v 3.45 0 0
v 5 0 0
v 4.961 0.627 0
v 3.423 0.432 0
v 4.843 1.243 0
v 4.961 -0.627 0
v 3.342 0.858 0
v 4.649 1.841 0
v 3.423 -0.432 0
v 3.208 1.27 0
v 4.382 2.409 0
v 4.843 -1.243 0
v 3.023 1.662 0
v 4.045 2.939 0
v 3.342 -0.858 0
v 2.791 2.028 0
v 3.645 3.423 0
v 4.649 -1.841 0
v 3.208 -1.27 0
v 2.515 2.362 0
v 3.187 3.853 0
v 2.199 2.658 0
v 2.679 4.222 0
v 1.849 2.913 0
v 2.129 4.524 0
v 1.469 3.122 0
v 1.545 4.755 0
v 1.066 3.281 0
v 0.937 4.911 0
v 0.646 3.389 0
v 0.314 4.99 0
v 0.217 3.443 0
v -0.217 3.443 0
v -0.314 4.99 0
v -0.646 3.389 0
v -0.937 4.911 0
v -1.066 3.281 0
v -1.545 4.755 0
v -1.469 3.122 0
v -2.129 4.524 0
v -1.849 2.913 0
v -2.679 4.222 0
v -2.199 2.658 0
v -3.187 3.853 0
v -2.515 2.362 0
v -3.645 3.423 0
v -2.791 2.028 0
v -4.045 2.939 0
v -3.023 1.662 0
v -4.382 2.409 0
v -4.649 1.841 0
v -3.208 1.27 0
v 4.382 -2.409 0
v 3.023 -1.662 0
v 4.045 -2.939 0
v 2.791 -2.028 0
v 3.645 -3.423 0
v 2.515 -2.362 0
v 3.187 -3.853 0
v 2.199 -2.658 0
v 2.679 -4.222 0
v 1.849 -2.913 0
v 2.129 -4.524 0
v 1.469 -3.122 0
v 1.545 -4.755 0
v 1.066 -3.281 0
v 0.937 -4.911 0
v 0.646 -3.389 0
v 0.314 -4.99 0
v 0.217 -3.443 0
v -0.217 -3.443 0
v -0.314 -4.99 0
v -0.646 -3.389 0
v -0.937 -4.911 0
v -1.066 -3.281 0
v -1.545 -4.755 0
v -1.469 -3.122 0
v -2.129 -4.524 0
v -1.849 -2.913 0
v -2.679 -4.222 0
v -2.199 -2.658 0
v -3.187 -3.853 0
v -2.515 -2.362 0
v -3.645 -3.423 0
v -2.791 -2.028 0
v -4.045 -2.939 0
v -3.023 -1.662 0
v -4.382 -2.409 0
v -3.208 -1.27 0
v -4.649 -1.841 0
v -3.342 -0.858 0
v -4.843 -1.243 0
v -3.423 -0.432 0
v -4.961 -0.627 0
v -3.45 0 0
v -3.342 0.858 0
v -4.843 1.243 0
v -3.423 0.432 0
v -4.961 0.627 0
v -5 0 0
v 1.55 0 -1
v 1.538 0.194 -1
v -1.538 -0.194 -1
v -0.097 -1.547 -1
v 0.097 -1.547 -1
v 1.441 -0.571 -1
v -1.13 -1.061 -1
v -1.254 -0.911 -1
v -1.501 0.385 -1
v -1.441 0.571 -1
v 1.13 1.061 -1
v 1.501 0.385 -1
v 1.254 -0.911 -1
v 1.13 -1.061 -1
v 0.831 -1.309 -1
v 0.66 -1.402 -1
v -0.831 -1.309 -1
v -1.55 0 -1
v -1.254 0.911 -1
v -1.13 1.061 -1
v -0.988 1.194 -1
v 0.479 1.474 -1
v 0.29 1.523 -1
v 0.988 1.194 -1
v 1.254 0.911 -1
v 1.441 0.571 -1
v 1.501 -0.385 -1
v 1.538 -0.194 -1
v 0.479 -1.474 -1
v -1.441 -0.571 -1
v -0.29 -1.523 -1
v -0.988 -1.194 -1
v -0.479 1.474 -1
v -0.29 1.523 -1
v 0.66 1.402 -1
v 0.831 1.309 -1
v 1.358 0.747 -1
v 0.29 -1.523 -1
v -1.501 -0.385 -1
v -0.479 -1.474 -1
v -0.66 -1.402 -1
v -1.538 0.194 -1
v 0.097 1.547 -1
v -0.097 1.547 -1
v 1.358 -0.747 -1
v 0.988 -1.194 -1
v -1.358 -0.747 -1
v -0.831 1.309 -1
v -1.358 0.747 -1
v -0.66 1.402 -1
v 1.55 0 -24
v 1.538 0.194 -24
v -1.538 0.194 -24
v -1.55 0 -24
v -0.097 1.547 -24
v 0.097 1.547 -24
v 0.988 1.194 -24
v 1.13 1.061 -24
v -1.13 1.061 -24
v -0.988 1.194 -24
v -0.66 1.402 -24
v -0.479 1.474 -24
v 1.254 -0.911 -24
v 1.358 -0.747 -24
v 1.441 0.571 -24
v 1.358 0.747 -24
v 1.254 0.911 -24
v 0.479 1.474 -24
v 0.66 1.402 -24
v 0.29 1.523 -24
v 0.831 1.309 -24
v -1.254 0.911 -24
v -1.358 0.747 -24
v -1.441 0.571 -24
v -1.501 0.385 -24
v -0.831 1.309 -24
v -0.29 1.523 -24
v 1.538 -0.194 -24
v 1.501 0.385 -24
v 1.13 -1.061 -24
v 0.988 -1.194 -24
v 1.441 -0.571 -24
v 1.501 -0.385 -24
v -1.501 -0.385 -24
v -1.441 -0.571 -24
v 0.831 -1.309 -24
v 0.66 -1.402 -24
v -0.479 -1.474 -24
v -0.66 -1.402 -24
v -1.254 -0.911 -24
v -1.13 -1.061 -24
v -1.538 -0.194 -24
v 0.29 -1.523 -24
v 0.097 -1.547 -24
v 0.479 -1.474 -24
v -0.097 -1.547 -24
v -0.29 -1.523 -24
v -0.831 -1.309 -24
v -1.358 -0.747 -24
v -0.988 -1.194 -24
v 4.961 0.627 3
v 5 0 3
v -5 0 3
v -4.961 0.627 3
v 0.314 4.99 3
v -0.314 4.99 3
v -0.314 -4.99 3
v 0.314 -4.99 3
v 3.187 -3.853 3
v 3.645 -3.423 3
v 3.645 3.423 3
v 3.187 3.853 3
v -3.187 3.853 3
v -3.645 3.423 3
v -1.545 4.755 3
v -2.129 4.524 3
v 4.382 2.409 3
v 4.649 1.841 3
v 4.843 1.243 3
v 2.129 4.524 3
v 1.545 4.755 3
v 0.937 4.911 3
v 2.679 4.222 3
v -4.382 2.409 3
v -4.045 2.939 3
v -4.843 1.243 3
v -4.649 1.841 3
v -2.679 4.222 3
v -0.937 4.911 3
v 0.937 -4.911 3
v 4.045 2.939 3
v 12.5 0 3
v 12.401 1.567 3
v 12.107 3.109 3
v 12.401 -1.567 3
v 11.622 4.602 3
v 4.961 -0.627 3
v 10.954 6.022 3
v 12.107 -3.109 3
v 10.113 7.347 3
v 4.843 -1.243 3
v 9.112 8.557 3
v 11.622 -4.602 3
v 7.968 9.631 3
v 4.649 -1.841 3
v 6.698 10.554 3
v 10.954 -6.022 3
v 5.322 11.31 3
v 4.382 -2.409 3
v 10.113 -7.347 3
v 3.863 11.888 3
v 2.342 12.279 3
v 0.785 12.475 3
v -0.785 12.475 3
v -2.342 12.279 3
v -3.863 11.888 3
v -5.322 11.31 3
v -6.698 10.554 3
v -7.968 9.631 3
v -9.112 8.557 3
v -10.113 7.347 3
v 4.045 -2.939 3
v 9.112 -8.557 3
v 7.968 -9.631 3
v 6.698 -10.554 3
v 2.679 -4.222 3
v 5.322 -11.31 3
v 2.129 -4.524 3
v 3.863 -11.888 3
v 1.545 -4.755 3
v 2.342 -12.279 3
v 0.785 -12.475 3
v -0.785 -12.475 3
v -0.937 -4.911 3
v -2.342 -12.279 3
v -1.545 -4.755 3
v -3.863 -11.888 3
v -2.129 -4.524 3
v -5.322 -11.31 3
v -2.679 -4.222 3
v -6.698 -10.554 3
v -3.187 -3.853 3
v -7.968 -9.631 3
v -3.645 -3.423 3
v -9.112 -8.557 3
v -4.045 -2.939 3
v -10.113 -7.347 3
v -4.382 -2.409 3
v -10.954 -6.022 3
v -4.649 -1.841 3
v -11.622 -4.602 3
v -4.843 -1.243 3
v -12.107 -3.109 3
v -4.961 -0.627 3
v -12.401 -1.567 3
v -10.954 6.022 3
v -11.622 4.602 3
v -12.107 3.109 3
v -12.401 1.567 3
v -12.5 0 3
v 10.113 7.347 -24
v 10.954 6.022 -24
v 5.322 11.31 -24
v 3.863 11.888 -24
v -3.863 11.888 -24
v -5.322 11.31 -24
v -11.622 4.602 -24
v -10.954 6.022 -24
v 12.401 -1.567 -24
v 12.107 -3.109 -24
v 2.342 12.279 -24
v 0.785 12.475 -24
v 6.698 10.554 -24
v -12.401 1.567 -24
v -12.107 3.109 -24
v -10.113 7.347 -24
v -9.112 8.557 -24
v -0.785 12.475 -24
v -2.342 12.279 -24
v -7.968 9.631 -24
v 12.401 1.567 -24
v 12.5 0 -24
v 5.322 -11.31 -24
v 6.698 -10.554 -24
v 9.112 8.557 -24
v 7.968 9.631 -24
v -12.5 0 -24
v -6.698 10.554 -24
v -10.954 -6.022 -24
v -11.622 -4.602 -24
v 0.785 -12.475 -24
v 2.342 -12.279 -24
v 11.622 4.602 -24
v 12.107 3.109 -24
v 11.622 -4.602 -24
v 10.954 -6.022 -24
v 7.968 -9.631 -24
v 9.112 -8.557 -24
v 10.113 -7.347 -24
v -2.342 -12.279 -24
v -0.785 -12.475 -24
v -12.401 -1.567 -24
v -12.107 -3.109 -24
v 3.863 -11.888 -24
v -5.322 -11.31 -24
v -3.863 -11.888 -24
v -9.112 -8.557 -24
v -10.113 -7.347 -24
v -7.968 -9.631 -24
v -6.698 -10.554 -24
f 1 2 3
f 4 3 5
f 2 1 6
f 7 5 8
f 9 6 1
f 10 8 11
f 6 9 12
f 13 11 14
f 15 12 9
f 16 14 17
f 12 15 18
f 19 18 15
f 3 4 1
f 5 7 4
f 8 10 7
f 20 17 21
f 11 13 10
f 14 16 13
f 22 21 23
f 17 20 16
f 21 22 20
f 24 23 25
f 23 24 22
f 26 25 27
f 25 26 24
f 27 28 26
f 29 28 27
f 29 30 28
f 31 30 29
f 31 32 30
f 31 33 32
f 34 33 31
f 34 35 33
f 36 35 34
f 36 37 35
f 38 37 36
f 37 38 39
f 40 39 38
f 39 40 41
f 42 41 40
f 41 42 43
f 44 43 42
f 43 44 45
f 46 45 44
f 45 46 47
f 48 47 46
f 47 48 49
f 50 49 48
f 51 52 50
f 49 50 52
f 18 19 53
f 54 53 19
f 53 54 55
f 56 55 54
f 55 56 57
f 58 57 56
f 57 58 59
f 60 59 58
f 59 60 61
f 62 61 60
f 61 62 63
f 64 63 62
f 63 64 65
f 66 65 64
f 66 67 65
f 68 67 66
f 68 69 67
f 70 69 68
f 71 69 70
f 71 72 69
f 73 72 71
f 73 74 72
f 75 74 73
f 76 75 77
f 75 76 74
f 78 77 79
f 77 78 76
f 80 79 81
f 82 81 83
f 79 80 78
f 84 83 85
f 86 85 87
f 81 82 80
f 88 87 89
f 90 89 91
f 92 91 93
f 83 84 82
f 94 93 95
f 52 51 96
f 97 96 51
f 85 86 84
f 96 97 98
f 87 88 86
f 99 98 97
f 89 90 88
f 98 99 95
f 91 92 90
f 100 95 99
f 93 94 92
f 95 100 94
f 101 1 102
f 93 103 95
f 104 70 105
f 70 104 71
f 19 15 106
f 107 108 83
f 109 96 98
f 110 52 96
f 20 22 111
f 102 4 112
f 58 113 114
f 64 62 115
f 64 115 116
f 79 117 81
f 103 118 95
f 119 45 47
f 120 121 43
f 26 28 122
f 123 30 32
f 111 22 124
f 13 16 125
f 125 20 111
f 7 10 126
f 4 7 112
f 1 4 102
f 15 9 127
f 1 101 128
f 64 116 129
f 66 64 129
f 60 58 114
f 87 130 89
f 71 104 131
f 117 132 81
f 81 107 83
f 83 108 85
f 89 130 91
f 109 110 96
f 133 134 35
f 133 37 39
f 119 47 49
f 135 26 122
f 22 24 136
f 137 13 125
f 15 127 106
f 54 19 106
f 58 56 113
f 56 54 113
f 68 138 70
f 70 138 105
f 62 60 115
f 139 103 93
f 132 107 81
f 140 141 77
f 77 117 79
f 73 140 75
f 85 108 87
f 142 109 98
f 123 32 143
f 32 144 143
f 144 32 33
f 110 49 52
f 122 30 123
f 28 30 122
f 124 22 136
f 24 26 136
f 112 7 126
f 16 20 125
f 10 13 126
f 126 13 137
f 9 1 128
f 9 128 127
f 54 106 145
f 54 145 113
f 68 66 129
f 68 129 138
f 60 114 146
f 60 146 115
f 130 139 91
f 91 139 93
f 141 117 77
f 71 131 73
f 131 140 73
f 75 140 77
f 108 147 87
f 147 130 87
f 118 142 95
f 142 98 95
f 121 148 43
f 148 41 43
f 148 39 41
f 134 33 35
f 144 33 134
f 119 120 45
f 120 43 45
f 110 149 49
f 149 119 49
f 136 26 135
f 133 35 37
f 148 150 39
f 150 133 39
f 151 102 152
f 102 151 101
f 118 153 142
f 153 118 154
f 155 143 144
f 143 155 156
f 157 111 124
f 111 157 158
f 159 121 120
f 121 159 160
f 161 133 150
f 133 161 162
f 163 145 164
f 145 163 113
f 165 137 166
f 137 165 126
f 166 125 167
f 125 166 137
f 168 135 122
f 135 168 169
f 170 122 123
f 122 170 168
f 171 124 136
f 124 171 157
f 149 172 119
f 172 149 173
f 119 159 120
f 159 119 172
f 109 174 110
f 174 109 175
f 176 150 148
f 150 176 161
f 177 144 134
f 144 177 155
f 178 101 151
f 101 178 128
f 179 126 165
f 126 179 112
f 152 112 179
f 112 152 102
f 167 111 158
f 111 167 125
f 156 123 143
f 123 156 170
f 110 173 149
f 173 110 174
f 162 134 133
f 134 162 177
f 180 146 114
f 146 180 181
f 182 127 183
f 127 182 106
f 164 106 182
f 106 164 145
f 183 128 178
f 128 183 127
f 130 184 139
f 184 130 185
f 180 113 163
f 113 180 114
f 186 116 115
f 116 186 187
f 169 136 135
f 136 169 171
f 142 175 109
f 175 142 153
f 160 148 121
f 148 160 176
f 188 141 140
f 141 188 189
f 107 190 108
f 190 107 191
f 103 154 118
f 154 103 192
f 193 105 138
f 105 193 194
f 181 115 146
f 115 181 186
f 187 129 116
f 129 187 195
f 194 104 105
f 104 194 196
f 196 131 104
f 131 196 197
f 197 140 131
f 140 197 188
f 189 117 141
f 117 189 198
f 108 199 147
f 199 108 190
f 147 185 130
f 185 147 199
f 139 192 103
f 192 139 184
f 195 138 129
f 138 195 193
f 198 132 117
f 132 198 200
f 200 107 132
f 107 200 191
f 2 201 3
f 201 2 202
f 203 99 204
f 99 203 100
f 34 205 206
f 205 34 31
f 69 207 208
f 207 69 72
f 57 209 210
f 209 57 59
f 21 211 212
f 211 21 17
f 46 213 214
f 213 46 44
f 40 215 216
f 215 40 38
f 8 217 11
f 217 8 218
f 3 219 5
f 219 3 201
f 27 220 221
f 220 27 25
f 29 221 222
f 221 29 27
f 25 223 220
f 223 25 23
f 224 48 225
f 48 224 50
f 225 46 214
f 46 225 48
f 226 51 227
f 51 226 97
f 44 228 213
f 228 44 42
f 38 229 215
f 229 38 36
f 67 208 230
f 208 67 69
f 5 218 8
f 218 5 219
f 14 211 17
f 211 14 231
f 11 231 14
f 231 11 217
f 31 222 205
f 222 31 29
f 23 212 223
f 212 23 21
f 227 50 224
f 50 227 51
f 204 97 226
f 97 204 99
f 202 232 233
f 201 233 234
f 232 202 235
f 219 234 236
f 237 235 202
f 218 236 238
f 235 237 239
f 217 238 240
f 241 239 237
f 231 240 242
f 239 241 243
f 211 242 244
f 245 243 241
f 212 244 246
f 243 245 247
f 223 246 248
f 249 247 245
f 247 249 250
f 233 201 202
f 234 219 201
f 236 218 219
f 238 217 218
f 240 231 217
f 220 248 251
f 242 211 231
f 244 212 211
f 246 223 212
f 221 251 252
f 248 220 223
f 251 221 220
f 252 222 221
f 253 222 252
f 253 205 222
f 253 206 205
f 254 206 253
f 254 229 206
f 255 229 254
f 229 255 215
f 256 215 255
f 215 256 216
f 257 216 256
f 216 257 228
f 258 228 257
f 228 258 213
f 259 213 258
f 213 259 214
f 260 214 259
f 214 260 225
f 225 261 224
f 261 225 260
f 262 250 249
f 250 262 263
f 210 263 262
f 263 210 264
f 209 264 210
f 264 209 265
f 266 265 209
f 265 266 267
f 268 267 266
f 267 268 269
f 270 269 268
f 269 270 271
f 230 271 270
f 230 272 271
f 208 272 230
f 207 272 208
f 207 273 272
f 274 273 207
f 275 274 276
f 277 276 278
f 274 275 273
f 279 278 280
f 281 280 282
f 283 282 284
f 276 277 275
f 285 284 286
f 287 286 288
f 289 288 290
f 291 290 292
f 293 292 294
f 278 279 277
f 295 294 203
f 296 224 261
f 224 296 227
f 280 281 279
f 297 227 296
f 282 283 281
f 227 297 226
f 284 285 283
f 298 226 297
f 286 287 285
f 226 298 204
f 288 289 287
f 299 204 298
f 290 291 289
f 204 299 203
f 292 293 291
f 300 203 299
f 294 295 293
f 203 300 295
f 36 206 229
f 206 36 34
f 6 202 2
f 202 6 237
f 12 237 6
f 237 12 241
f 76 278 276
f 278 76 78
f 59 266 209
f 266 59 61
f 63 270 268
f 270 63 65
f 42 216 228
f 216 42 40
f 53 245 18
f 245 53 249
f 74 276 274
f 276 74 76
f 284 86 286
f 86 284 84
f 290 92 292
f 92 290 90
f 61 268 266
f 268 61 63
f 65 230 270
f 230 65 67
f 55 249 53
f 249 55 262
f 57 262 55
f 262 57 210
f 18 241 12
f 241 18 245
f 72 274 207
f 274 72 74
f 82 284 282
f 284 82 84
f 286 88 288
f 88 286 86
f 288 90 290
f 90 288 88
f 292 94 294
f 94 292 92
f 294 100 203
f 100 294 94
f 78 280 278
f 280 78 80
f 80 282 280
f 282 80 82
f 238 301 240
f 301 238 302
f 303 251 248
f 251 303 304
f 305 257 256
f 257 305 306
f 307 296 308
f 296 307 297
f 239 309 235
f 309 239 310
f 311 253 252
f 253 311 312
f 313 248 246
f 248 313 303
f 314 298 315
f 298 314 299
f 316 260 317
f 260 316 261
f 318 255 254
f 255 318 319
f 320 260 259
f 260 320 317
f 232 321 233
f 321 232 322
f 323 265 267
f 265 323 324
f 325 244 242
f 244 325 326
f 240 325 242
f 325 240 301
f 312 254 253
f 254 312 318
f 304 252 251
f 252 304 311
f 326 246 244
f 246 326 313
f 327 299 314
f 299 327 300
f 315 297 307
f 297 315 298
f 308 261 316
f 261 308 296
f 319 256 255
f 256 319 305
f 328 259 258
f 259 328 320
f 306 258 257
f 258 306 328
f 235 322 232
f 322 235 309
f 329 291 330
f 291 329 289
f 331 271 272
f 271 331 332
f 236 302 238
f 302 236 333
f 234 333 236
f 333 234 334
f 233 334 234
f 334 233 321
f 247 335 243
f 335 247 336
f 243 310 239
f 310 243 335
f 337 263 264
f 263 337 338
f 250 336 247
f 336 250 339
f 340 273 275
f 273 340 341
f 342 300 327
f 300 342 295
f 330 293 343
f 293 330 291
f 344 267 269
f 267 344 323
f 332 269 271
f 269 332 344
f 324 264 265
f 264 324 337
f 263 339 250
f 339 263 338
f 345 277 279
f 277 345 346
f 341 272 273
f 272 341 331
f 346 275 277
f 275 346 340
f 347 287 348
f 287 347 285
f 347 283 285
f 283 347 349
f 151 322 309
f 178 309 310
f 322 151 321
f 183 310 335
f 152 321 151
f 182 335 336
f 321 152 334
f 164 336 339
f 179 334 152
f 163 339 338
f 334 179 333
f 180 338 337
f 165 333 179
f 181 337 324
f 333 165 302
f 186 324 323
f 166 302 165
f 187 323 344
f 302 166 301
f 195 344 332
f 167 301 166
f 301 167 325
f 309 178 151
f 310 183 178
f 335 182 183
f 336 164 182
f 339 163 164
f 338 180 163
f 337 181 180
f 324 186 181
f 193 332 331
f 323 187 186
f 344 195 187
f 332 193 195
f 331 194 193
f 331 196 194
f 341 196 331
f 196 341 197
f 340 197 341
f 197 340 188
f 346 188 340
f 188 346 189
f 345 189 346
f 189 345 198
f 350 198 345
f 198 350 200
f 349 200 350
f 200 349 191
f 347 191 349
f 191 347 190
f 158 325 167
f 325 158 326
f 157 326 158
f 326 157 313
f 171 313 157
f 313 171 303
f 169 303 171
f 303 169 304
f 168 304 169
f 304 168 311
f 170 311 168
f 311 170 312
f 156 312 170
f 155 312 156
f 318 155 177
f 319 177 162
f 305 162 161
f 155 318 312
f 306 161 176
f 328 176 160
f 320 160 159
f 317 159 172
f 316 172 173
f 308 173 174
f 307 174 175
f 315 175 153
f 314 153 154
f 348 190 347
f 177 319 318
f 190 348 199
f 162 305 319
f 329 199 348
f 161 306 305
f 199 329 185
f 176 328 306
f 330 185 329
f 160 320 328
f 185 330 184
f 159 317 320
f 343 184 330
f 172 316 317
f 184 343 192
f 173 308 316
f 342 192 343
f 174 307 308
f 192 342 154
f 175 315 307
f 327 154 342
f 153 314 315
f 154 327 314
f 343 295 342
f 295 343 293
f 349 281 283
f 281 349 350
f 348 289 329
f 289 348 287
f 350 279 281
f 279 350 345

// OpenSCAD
$fn = 50;

difference() {
	union() {
		translate(v = [0, 0, -24.0]) {
			cylinder(h = 27, r = 12.5);
		}
	}
	union() {
		translate(v = [0, 0, 0]) {
			rotate(a = [0, 0, 0]) {
				difference() {
					union() {
						translate(v = [0, 0, -27.0]) {
							cylinder(h = 27, r = 1.25);
						}
						translate(v = [0, 0, -1.0]) {
							cylinder(h = 1.0, r1 = 1.55, r2 = 3.45);
						}
						translate(v = [0, 0, -27.0]) {
							cylinder(h = 27, r = 1.55);
						}
						translate(v = [0, 0, -27.0]) {
							cylinder(h = 27, r = 1.25);
						}
					}
					union();
				}
			}
		}
		#cylinder(h = 3, r = 5.0);
	}
}
